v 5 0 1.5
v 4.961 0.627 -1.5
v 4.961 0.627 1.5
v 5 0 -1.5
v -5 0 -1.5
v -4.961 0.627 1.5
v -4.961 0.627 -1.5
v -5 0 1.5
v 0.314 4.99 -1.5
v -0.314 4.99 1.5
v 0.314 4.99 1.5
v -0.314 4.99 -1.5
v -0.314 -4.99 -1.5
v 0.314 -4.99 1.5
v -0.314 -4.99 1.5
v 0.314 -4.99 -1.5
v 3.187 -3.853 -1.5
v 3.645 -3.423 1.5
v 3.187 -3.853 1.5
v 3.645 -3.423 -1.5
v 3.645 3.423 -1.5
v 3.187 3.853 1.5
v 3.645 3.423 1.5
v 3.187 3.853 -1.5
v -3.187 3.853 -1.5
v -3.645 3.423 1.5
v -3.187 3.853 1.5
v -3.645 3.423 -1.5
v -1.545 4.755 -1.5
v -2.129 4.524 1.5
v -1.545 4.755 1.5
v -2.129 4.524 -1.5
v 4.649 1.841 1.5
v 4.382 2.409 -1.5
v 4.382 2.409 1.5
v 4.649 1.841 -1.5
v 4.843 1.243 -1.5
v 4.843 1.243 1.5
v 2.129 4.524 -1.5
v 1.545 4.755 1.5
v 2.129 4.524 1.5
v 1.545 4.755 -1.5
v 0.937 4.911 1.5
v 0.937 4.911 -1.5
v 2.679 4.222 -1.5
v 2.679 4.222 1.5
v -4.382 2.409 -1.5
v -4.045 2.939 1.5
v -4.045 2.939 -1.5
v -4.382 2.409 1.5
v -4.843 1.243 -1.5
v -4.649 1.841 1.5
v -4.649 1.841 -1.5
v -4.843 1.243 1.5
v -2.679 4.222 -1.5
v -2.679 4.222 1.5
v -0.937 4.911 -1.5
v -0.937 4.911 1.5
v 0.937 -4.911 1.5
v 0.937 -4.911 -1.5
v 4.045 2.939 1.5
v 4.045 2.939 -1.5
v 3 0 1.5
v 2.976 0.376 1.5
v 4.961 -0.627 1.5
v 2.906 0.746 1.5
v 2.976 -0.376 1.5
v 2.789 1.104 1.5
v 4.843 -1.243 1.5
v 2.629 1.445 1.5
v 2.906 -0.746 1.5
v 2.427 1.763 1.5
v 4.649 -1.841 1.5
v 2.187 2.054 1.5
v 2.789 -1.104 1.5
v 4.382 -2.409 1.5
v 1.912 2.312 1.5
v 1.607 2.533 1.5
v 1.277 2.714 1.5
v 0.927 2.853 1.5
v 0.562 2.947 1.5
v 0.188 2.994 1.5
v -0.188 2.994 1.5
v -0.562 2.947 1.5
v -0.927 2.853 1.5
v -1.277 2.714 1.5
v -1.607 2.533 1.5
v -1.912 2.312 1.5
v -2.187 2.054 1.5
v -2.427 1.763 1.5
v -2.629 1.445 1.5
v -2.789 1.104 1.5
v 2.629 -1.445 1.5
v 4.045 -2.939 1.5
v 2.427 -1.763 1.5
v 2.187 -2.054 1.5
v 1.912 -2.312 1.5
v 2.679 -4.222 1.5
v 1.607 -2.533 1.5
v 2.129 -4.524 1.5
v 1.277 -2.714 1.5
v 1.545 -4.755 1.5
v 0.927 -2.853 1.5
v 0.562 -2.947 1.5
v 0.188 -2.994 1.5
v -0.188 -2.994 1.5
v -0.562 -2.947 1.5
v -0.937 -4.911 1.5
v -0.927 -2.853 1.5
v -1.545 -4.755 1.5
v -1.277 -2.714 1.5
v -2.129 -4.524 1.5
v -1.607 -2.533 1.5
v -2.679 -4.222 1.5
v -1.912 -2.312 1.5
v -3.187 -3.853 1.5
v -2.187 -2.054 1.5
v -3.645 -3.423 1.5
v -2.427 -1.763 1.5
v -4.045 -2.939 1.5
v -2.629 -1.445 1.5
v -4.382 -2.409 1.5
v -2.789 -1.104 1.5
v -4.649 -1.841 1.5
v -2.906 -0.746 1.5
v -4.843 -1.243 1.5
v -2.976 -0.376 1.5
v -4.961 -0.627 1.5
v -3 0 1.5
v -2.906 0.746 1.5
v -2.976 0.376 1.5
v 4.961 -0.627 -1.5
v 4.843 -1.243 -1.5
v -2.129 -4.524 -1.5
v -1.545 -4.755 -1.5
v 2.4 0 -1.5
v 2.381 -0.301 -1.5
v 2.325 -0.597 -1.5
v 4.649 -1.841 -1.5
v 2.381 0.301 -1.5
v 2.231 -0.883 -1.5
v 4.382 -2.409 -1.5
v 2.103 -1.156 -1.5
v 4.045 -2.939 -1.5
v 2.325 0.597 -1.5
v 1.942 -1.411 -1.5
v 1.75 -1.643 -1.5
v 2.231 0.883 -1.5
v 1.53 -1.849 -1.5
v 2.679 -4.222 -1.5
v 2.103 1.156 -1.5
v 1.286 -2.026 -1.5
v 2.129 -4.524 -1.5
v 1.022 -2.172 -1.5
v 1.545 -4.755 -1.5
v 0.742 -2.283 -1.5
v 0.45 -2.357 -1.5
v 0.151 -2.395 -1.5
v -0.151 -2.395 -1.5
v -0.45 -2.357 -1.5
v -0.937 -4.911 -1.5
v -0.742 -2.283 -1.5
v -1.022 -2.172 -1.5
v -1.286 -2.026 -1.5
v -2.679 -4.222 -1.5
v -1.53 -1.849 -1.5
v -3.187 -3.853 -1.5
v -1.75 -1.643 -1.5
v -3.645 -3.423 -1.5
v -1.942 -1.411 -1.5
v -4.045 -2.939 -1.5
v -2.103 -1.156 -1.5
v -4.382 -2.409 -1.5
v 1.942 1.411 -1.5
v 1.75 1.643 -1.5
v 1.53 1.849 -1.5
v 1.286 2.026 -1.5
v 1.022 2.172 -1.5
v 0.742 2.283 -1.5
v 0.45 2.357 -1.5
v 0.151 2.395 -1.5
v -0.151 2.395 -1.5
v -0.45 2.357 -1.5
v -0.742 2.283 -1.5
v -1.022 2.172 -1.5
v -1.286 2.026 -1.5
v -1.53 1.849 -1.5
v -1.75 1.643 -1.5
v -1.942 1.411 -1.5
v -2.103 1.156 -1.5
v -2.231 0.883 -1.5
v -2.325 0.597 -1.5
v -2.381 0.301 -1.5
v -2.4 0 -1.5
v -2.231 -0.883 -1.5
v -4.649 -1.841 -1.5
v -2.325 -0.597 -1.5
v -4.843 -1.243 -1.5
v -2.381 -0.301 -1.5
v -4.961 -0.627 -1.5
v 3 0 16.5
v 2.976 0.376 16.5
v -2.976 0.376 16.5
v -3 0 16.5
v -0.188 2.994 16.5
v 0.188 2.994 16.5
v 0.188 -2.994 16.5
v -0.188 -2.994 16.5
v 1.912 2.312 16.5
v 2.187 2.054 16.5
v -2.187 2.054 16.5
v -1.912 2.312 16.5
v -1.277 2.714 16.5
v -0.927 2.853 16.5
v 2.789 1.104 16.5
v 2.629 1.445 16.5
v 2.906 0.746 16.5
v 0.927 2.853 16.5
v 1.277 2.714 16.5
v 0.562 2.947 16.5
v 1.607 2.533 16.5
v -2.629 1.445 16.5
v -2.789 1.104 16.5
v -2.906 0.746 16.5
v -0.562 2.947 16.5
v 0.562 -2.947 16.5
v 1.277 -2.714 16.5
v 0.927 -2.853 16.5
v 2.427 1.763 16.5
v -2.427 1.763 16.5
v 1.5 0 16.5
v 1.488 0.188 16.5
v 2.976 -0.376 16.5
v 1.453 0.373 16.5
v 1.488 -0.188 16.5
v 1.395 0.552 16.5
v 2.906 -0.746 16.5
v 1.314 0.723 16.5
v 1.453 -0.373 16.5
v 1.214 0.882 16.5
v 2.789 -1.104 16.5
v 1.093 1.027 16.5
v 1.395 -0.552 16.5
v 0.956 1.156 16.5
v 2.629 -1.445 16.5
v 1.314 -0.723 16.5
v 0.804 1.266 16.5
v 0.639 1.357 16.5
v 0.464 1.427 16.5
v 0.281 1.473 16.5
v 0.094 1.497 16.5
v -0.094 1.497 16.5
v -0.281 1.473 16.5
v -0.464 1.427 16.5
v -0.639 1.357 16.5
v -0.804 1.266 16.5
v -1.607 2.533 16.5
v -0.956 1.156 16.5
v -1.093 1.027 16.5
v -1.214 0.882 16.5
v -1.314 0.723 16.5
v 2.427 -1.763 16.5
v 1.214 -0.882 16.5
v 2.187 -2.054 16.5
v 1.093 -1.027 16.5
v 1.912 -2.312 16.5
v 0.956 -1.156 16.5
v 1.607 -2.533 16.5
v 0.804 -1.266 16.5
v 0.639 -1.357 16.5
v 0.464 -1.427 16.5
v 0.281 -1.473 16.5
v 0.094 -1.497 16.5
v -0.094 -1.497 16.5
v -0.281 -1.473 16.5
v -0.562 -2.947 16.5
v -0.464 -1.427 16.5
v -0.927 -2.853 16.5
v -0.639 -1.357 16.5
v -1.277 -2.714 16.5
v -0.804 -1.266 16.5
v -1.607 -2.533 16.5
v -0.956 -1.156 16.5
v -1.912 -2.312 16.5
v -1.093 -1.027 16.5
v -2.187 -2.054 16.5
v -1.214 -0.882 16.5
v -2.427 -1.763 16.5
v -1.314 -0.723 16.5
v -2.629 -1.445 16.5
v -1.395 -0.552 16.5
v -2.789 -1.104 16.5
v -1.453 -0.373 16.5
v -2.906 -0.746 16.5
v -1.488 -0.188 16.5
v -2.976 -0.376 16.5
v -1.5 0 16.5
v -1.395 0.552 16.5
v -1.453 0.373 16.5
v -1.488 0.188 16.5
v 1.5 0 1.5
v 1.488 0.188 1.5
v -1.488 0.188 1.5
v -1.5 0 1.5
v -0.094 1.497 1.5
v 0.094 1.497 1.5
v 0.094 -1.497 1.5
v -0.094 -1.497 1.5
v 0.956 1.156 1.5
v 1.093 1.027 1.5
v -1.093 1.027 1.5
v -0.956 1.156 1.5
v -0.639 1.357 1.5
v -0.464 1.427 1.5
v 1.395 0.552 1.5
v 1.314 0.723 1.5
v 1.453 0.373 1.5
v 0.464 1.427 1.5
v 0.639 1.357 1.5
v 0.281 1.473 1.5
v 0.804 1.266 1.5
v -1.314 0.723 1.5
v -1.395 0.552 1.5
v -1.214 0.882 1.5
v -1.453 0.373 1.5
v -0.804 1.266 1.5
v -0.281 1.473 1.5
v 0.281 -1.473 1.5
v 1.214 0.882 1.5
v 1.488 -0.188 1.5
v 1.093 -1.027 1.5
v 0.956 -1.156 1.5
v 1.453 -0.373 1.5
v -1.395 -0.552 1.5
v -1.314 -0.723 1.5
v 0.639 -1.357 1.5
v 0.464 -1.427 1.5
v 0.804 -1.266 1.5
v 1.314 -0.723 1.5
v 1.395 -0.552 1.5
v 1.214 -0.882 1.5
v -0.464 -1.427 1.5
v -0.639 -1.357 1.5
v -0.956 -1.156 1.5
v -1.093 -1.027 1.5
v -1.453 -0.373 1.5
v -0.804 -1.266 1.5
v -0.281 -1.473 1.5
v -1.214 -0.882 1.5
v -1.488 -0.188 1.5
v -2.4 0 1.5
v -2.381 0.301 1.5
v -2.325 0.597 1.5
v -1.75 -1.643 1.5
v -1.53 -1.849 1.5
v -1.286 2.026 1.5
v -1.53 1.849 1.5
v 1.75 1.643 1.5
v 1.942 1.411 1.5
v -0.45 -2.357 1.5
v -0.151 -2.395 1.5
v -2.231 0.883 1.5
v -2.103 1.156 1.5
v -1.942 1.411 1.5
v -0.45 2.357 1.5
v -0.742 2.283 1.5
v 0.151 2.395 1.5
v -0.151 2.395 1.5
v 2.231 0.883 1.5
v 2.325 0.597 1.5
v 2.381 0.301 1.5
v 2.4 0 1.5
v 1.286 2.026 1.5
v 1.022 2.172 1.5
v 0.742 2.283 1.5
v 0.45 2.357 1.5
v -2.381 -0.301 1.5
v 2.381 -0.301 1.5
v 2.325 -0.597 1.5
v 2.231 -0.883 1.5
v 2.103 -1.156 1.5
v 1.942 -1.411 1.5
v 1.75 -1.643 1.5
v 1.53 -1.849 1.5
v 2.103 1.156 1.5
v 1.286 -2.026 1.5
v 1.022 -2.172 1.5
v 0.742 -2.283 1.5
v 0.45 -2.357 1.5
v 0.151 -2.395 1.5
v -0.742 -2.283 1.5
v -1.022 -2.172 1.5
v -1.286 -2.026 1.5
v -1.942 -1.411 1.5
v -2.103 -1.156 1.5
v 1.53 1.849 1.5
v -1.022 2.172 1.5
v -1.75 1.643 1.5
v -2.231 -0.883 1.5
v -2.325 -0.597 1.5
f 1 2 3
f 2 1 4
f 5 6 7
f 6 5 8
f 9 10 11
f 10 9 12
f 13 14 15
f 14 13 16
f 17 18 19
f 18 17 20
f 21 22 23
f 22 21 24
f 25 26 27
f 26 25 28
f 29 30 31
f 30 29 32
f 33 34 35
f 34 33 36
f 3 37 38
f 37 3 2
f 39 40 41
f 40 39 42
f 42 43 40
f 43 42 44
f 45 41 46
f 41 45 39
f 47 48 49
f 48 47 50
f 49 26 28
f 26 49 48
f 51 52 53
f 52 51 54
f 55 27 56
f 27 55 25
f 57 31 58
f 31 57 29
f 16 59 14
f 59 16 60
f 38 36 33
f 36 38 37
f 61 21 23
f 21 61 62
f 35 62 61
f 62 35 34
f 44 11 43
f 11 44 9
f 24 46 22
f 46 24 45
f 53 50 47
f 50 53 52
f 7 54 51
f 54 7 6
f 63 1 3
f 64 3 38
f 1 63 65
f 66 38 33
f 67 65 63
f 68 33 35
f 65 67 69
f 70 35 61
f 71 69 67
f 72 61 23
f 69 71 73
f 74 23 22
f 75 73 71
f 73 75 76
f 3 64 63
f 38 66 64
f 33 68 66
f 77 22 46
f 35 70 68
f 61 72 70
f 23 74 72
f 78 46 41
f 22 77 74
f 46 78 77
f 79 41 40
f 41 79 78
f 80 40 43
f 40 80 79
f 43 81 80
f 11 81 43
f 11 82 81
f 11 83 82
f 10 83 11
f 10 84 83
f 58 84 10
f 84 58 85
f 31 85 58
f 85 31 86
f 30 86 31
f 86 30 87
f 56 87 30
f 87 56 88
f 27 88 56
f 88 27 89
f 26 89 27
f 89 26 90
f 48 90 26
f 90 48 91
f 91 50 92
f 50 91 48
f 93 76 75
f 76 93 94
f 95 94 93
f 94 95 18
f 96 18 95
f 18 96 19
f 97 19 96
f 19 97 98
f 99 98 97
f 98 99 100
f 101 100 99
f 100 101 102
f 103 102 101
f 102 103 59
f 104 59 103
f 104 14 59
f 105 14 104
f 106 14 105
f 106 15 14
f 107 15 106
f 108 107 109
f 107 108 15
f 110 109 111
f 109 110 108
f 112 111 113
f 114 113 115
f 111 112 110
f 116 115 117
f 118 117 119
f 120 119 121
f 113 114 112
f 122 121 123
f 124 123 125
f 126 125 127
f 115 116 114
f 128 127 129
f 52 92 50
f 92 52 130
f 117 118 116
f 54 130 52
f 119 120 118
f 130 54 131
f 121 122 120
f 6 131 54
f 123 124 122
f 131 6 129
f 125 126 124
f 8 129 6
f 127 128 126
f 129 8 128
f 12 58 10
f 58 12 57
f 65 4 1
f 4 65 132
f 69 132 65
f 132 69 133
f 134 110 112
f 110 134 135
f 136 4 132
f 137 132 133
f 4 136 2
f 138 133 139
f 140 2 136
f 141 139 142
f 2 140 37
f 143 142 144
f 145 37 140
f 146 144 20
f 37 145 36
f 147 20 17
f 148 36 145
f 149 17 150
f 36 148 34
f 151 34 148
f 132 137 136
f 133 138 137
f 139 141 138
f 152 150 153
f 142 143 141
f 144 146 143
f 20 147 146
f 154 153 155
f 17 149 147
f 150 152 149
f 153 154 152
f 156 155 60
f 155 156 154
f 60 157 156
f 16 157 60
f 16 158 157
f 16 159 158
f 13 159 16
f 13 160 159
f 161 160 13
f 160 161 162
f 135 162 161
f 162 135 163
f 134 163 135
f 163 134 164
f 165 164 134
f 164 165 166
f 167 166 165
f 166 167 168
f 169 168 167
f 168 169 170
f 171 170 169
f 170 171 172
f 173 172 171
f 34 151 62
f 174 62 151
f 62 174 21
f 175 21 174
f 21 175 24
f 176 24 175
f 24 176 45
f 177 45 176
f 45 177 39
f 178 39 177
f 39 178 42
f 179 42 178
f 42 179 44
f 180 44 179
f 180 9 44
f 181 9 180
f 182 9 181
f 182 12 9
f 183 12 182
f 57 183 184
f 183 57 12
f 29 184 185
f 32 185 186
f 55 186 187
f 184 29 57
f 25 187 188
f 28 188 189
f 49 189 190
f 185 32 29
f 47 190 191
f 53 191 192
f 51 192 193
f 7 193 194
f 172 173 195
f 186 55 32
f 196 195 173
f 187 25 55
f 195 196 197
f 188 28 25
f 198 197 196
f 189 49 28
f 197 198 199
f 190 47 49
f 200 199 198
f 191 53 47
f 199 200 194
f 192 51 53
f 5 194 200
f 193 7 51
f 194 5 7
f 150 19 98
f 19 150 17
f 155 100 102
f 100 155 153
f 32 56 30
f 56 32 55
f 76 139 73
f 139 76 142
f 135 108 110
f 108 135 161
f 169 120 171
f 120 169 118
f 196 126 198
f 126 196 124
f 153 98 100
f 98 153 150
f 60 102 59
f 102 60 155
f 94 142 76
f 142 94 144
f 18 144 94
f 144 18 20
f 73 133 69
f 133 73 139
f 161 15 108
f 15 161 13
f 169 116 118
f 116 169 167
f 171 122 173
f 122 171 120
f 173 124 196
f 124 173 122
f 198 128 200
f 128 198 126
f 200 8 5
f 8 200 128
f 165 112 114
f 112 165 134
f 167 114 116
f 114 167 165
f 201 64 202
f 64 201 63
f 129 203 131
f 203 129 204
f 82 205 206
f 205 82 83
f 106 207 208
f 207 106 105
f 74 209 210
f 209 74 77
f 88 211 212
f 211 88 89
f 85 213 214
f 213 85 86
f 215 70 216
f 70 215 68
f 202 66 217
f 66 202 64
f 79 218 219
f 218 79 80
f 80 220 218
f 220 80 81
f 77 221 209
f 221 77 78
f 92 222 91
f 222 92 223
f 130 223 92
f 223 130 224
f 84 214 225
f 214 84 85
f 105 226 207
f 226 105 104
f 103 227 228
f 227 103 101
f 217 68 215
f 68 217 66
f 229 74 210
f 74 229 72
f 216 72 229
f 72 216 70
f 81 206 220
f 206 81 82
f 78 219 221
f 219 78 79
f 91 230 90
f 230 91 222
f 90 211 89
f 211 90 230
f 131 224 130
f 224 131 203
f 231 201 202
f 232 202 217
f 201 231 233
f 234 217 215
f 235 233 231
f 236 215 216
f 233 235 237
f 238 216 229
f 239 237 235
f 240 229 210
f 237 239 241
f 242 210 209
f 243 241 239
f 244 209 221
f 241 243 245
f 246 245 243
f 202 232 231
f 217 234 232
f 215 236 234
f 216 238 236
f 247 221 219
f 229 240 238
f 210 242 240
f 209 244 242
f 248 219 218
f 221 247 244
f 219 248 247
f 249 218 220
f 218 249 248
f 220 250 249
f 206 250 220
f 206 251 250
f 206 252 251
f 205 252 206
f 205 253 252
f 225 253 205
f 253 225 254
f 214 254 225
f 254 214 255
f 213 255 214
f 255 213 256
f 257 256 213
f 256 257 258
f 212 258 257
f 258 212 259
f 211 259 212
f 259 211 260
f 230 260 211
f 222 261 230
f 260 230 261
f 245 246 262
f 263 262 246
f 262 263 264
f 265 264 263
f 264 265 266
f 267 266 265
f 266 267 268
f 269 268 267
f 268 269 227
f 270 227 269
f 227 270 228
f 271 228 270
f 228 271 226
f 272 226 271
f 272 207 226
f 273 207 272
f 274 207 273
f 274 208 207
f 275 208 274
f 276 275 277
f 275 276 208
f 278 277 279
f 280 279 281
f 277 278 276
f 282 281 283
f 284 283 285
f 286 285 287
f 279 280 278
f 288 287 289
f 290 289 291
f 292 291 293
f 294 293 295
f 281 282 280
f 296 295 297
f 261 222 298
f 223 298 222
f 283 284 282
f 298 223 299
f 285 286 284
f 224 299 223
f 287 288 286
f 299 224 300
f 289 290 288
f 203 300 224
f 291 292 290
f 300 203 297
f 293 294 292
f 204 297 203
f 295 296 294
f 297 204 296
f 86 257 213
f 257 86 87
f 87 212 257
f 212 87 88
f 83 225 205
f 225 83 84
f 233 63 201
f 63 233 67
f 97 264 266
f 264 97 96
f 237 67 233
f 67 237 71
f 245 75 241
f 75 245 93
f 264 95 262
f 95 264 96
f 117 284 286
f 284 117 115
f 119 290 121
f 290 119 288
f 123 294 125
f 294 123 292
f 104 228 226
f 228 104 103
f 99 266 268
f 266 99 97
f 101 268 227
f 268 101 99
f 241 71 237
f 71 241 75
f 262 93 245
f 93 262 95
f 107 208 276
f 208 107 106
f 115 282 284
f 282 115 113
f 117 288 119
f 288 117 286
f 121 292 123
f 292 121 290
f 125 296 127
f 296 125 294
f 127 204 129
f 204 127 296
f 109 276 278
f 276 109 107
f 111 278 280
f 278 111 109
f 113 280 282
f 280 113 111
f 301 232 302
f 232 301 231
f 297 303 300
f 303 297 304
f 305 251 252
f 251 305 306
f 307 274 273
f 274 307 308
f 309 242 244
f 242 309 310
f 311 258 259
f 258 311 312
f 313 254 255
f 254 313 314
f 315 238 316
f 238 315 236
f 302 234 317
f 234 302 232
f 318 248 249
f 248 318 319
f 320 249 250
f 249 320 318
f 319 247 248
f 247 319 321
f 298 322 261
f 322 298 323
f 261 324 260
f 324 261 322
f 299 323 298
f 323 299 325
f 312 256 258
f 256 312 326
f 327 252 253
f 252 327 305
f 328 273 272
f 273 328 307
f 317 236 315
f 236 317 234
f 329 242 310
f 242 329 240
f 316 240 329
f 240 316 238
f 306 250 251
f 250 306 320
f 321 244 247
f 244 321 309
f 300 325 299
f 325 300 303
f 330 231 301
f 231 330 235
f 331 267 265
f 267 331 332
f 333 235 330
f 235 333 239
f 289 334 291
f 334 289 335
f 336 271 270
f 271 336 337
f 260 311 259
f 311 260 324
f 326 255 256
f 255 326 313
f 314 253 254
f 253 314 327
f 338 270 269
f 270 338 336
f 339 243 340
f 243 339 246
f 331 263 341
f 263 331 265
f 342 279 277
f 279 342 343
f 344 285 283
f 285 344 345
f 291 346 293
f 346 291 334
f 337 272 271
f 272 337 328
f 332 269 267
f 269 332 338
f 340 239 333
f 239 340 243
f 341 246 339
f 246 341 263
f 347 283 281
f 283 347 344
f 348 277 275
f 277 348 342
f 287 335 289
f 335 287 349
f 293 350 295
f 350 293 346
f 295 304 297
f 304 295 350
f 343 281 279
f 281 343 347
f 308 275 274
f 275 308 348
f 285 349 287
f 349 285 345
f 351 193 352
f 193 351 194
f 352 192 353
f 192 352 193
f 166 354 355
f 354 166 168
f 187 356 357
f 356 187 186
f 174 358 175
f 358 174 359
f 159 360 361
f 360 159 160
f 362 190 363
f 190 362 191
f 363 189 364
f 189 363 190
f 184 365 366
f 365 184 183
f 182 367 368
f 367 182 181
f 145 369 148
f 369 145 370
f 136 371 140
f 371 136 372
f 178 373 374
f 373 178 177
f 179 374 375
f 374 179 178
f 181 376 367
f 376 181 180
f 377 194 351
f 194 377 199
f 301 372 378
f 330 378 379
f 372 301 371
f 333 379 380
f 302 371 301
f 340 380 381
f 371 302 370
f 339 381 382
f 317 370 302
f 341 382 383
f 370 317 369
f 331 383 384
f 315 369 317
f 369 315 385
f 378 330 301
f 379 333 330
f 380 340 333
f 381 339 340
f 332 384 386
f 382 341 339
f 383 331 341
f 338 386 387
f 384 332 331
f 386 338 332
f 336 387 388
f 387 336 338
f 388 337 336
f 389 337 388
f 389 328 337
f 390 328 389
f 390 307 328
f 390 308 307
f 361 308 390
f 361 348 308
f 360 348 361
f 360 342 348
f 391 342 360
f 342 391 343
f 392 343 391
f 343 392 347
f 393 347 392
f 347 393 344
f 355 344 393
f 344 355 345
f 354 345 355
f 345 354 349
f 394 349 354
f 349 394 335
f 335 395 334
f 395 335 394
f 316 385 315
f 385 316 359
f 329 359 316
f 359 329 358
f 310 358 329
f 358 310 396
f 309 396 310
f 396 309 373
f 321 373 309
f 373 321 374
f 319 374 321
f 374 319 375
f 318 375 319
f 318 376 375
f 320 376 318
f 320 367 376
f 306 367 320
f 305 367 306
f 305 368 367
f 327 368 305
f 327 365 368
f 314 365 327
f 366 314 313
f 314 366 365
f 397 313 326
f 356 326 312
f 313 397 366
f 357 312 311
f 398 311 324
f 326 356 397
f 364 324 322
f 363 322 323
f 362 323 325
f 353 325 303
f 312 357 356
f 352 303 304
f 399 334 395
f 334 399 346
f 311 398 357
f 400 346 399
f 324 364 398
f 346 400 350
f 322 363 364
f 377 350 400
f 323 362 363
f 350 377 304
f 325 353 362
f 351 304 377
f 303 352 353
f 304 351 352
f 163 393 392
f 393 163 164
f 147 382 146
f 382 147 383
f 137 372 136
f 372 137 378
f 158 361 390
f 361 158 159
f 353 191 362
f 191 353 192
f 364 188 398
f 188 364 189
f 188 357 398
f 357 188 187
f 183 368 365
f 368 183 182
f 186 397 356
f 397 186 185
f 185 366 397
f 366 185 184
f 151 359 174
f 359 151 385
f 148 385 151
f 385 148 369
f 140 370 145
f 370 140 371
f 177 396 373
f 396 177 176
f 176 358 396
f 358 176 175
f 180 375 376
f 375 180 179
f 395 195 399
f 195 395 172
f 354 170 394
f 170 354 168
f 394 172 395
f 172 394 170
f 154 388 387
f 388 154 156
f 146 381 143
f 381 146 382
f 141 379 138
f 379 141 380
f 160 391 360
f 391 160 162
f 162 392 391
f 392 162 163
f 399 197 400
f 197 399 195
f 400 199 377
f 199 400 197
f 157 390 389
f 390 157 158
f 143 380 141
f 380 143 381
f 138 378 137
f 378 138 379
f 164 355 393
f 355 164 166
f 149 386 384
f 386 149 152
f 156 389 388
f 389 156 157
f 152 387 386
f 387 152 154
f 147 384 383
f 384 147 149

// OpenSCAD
$fn = 50;


difference() {
	union() {
		translate(v = [0, 0, -1.5000000000]) {
			rotate(a = [0, 0, 0]) {
				cylinder(h = 3, r = 5.0000000000);
			}
		}
		translate(v = [0, 0, -1.5000000000]) {
			rotate(a = [0, 0, 0]) {
				cylinder(h = 18, r = 3.0000000000);
			}
		}
	}
	union() {
		translate(v = [0, 0, -125.0000000000]) {
			rotate(a = [0, 0, 0]) {
				cylinder(h = 250, r = 1.5000000000);
			}
		}
		#translate(v = [0, 0, 1.5000000000]) {
			rotate(a = [0, 180, 0]) {
				cylinder(h = 3, r1 = 2.4000000000, r2 = 2.4000000000);
			}
		}
		#translate(v = [0, 0, 16.5000000000]) {
			rotate(a = [0, 180, 0]) {
				cylinder(h = 18, r = 1.5000000000);
			}
		}
	}
}
